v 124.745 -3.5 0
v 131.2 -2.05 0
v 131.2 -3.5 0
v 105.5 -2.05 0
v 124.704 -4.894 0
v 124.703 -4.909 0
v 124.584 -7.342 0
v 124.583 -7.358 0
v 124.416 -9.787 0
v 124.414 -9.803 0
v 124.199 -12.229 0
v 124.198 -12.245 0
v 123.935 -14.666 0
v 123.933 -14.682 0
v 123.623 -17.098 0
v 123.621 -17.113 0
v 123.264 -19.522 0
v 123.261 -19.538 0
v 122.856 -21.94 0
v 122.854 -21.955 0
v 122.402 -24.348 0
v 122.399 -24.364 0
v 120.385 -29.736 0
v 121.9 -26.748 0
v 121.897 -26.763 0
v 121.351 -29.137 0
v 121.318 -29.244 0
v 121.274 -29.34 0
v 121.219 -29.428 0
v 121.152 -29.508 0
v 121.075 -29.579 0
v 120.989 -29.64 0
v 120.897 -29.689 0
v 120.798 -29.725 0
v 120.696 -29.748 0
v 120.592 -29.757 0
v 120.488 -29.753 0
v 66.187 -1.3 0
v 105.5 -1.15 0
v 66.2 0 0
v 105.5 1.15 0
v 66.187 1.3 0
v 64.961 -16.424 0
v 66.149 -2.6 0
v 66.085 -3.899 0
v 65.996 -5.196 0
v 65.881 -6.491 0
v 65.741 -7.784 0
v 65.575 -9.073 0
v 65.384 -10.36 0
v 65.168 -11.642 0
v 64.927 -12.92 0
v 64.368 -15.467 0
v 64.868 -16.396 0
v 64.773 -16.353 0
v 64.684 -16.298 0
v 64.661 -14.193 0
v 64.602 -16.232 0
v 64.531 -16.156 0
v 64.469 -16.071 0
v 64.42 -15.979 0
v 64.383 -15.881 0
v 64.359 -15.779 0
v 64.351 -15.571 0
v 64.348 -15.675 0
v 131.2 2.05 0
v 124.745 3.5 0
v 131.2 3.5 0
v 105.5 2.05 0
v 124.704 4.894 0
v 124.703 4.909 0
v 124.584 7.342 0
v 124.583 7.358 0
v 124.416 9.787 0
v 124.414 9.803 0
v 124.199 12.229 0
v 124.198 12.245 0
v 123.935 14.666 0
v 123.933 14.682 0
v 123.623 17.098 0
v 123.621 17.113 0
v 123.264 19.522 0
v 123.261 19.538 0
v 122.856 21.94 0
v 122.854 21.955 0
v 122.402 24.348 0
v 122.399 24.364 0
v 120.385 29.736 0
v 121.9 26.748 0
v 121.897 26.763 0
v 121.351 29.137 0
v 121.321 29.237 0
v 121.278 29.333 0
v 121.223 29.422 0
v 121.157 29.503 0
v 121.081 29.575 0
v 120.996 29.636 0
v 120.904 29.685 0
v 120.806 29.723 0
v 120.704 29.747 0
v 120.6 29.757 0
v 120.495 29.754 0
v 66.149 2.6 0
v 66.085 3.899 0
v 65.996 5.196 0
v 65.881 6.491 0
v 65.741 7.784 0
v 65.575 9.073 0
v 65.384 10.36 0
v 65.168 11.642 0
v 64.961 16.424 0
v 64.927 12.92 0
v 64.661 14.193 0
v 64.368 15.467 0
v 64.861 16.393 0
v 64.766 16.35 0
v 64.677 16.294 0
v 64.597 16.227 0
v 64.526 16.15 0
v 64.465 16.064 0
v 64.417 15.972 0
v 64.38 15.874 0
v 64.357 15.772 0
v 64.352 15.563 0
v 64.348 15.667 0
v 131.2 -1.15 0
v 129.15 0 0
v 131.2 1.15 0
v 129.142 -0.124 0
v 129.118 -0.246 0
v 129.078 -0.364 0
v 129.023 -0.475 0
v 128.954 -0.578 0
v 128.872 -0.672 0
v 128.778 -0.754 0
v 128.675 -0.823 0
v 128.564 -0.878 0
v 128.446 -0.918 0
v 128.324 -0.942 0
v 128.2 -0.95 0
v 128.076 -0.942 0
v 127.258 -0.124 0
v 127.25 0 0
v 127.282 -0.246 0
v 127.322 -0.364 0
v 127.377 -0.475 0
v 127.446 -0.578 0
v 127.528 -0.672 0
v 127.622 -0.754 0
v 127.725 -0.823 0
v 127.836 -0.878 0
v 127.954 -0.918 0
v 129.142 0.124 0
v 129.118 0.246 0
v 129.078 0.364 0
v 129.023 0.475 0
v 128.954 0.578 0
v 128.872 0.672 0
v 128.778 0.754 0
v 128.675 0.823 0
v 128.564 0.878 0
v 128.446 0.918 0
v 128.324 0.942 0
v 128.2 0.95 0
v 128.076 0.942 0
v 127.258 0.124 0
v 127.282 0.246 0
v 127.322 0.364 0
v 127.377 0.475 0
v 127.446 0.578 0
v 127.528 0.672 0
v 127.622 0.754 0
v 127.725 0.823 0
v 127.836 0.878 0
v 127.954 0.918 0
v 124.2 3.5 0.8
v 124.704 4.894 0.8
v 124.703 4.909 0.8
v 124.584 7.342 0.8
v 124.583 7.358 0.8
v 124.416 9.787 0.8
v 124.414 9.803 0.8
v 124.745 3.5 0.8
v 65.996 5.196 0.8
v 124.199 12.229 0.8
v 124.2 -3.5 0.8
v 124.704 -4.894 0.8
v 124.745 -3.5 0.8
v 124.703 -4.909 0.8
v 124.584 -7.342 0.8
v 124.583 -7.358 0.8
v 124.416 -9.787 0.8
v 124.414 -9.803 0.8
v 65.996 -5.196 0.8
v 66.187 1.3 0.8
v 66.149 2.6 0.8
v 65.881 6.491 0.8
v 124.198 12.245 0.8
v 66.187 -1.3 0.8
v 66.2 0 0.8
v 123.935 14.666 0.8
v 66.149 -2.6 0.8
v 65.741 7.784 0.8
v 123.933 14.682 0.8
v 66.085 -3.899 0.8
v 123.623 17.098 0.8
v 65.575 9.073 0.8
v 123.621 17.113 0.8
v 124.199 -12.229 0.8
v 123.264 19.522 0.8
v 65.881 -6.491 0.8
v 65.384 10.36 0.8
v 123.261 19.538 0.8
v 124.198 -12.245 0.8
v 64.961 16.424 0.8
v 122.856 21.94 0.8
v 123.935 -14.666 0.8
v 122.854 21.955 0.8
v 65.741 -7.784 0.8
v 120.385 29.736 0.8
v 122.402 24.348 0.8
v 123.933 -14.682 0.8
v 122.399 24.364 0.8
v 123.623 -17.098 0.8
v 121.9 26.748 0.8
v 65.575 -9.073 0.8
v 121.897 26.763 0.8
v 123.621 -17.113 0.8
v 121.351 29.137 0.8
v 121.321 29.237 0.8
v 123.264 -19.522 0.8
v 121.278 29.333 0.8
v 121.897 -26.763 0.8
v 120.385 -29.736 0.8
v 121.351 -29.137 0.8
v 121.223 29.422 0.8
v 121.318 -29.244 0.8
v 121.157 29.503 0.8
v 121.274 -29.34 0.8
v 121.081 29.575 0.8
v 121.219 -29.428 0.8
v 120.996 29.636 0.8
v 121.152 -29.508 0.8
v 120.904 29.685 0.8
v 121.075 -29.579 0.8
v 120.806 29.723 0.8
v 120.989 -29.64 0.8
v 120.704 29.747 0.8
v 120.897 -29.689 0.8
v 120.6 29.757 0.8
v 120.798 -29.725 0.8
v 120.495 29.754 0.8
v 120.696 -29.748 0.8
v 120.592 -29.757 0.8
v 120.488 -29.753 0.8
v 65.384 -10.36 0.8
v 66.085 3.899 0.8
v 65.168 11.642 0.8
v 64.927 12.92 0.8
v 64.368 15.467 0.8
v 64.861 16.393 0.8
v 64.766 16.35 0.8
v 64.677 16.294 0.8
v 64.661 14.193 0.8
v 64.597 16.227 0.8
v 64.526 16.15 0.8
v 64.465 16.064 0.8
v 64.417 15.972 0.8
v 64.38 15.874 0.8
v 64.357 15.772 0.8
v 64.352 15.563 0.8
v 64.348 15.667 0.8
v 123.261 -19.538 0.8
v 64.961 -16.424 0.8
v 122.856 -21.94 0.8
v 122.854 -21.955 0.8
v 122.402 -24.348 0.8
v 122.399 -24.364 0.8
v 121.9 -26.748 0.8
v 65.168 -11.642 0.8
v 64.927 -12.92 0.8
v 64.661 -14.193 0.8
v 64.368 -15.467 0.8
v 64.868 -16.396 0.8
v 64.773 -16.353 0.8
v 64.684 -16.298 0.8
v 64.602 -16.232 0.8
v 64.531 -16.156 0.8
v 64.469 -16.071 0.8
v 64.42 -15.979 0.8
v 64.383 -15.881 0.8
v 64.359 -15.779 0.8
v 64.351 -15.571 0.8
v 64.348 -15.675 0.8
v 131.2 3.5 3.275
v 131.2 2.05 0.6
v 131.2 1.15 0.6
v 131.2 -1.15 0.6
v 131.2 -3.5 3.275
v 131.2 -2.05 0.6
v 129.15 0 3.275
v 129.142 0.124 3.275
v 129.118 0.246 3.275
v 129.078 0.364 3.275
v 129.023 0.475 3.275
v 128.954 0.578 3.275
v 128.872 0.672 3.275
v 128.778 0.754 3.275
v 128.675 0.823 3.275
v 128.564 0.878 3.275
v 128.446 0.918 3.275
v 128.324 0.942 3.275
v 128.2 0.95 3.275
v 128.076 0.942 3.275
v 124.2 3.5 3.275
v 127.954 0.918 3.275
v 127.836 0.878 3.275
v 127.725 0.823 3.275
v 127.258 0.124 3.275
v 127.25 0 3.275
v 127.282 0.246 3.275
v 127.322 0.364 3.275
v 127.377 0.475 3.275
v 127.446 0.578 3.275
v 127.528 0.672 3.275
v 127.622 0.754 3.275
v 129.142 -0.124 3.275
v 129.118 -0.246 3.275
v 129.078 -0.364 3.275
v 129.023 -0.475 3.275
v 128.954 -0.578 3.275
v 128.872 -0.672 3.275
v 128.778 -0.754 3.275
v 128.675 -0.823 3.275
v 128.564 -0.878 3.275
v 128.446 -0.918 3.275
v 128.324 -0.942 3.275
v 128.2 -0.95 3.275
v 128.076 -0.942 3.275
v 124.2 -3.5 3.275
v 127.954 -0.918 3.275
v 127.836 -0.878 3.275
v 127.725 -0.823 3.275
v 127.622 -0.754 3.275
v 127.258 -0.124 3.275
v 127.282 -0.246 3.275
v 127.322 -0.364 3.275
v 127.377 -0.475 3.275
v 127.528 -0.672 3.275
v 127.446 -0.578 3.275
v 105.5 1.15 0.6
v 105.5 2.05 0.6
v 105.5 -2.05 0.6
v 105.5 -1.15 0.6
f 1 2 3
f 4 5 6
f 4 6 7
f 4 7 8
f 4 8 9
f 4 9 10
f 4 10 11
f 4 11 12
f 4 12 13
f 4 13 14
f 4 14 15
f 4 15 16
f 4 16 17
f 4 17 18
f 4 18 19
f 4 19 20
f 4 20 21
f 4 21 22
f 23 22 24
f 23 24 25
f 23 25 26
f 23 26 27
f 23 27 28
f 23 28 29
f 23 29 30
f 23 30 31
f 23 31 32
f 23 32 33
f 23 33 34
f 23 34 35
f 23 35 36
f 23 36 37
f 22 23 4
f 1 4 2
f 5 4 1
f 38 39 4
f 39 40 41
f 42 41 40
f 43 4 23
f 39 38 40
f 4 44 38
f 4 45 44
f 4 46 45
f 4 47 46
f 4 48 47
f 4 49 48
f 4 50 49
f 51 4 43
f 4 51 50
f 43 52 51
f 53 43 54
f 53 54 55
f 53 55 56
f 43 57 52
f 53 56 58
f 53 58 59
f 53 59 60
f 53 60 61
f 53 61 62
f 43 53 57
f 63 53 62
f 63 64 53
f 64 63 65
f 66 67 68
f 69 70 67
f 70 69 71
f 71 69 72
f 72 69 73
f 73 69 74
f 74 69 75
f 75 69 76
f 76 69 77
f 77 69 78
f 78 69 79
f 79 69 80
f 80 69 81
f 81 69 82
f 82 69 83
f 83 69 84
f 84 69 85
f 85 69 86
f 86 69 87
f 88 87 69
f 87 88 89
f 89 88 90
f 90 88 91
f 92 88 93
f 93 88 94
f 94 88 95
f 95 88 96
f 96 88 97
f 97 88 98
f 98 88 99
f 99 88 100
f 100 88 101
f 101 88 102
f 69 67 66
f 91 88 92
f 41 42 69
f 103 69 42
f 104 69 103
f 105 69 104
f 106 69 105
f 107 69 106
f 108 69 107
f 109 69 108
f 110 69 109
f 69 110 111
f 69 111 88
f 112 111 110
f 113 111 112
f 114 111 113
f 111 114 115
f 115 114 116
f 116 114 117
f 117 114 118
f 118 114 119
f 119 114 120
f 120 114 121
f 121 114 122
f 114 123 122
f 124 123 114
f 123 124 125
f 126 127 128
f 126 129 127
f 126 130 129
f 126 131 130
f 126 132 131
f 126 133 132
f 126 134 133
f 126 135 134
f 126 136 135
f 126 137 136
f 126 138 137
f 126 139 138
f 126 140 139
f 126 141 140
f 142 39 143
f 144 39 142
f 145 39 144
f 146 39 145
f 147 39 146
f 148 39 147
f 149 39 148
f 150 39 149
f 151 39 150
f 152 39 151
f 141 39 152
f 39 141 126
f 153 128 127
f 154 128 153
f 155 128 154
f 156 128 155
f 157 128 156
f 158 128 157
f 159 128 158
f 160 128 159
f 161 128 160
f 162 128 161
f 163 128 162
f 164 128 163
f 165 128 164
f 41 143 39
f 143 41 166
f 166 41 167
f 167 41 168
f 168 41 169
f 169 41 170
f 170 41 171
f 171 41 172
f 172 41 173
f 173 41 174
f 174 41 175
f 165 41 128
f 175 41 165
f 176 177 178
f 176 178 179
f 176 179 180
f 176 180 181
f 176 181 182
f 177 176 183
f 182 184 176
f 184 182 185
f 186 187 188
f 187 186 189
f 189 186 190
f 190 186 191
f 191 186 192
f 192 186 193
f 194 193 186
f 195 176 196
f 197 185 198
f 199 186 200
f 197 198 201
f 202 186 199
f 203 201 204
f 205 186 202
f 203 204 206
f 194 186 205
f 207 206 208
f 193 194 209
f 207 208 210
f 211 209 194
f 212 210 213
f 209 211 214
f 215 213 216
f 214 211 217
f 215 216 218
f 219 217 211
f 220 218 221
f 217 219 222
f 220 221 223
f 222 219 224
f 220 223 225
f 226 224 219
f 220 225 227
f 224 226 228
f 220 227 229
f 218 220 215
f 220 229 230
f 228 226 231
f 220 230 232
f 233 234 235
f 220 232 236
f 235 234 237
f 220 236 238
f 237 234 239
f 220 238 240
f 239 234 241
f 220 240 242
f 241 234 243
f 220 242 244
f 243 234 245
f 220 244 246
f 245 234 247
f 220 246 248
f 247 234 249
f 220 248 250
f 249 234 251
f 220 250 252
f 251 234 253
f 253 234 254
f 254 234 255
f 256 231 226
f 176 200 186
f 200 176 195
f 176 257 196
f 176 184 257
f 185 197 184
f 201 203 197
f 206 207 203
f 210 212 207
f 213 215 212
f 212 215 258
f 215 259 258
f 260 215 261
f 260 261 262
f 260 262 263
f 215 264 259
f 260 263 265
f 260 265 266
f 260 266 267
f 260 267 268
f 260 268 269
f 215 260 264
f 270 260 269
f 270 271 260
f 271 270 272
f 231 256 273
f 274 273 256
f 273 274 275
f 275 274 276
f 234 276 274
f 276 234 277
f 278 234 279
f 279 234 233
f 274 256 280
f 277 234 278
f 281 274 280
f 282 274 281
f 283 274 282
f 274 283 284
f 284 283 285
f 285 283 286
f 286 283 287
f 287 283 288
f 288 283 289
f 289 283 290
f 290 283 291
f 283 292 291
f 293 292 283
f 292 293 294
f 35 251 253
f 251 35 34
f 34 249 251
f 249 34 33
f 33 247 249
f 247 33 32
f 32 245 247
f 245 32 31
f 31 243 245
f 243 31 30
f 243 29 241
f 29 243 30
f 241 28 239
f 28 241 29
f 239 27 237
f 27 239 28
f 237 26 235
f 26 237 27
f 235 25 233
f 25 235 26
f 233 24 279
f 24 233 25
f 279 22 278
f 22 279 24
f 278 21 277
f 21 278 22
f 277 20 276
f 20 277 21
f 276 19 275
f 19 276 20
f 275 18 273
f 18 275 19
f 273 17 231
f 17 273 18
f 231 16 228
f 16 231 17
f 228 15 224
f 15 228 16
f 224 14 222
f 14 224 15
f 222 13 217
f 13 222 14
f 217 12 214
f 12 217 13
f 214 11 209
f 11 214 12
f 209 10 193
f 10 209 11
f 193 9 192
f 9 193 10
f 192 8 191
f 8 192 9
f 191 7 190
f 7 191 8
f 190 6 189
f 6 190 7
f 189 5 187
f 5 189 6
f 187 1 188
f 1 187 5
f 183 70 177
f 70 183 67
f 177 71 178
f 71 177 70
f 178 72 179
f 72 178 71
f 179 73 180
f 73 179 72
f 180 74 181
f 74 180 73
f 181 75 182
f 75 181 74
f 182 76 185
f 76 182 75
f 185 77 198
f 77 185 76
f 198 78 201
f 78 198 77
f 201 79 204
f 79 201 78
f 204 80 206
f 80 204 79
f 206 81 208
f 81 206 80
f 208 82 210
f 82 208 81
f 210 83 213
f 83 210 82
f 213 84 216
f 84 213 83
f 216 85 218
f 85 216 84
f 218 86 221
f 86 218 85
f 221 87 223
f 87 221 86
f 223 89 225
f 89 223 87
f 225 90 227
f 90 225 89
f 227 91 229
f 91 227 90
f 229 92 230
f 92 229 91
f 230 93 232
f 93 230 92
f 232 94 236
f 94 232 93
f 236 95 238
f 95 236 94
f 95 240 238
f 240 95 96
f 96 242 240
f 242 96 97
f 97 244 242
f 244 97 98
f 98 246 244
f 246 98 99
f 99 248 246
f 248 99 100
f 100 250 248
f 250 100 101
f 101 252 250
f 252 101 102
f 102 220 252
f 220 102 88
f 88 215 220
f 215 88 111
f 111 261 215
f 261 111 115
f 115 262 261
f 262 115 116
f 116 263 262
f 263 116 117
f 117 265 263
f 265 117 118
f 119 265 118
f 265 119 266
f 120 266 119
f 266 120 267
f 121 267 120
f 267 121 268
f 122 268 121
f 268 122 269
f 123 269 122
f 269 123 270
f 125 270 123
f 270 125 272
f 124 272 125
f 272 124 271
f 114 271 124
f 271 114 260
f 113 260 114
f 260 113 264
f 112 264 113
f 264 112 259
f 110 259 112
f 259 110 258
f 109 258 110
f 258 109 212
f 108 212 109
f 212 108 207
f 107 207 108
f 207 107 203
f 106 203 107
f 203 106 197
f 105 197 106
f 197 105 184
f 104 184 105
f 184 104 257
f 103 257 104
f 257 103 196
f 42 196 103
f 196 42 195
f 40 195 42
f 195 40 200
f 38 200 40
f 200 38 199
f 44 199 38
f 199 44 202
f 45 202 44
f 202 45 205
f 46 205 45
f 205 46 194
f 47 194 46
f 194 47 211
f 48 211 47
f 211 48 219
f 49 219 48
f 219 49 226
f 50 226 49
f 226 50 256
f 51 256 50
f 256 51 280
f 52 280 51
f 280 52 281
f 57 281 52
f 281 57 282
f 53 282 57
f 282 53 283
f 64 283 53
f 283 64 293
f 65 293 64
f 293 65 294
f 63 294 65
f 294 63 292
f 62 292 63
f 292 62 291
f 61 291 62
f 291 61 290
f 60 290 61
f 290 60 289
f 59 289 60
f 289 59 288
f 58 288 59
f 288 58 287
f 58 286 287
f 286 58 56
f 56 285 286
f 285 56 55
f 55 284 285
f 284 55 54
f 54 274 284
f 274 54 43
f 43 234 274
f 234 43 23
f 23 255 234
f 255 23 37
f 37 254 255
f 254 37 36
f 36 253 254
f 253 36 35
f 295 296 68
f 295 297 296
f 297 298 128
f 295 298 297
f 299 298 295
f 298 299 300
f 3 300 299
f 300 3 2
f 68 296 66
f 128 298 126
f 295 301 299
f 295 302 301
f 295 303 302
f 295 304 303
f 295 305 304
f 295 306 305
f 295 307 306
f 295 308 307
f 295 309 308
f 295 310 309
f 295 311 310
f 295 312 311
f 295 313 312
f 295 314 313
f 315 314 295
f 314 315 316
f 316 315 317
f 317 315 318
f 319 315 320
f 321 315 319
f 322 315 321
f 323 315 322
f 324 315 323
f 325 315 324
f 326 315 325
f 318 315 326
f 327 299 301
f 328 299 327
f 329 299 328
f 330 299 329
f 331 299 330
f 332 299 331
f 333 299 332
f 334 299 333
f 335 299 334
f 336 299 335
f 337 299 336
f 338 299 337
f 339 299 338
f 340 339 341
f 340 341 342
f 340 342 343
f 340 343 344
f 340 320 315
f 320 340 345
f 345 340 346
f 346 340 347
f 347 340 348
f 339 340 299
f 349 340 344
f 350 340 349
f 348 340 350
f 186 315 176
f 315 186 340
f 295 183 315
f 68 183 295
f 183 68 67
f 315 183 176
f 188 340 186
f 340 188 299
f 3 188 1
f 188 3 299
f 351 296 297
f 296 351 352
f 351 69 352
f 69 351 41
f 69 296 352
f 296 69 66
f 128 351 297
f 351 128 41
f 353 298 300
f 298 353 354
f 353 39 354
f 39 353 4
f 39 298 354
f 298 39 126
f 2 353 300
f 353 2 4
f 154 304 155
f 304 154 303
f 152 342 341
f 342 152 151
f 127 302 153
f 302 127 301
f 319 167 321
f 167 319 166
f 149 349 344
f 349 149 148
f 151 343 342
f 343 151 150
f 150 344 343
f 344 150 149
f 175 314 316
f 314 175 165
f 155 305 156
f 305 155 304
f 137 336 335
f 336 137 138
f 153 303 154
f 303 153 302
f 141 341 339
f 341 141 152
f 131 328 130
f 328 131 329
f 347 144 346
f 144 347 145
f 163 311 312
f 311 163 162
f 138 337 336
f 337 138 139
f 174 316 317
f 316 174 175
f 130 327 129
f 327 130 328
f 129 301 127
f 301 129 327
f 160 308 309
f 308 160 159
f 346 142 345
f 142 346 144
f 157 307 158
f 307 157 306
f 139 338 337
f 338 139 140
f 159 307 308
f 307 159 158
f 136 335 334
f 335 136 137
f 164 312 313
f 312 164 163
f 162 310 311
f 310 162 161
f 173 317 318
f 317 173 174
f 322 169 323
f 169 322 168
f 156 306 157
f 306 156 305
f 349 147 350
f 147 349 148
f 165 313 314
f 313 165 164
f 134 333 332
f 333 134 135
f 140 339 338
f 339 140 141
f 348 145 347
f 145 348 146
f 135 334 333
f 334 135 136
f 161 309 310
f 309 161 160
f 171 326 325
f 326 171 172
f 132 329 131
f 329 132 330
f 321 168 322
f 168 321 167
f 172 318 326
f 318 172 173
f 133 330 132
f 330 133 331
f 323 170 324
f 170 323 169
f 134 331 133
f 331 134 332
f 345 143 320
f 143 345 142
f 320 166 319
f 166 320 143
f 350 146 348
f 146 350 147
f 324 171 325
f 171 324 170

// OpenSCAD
// Gen-DH — bobbin LID (top flange + locating tab). Print x12, flange face DOWN on the bed.
// CA-glue onto the hub top BEFORE winding. Tab = lap joint into the stator tab pocket; 1.75 mm filament
// pin through pin hole + stator ledge, trim flush. Lead slots carry both leads flush.
include <parameters.scad>;
$fn = 48;
module sector_2d(r_in, r_out, ang) {
    polygon([
        for (a = [-ang/2 : ang/24 : ang/2]) [r_in*cos(a), r_in*sin(a)],
        for (a = [ang/2 : -ang/24 : -ang/2]) [r_out*cos(a), r_out*sin(a)]
    ]);
}
module footprint_2d() { offset(r=wall) sector_2d(coil_id_r, coil_od_r, span_deg); }
module hub_2d()       { offset(delta=-coil_core_inset) sector_2d(coil_id_r, coil_od_r, span_deg); }

difference() {
    union() {
        linear_extrude(flange_t) footprint_2d();
        translate([coil_od_r + 0.2, -tab_w/2, 0]) cube([tab_len, tab_w, tab_h]);
    }
    translate([coil_mount_r, 0, -0.1]) cylinder(d=pin_d, h=tab_h + 1);
    for (y = [lead_y, -lead_y])
        translate([coil_od_r - coil_core_inset - 0.5, y - lead_slot_w/2, -0.1])
            cube([coil_core_inset + tab_len + 2, lead_slot_w, lead_groove_d + 0.1]);
}
